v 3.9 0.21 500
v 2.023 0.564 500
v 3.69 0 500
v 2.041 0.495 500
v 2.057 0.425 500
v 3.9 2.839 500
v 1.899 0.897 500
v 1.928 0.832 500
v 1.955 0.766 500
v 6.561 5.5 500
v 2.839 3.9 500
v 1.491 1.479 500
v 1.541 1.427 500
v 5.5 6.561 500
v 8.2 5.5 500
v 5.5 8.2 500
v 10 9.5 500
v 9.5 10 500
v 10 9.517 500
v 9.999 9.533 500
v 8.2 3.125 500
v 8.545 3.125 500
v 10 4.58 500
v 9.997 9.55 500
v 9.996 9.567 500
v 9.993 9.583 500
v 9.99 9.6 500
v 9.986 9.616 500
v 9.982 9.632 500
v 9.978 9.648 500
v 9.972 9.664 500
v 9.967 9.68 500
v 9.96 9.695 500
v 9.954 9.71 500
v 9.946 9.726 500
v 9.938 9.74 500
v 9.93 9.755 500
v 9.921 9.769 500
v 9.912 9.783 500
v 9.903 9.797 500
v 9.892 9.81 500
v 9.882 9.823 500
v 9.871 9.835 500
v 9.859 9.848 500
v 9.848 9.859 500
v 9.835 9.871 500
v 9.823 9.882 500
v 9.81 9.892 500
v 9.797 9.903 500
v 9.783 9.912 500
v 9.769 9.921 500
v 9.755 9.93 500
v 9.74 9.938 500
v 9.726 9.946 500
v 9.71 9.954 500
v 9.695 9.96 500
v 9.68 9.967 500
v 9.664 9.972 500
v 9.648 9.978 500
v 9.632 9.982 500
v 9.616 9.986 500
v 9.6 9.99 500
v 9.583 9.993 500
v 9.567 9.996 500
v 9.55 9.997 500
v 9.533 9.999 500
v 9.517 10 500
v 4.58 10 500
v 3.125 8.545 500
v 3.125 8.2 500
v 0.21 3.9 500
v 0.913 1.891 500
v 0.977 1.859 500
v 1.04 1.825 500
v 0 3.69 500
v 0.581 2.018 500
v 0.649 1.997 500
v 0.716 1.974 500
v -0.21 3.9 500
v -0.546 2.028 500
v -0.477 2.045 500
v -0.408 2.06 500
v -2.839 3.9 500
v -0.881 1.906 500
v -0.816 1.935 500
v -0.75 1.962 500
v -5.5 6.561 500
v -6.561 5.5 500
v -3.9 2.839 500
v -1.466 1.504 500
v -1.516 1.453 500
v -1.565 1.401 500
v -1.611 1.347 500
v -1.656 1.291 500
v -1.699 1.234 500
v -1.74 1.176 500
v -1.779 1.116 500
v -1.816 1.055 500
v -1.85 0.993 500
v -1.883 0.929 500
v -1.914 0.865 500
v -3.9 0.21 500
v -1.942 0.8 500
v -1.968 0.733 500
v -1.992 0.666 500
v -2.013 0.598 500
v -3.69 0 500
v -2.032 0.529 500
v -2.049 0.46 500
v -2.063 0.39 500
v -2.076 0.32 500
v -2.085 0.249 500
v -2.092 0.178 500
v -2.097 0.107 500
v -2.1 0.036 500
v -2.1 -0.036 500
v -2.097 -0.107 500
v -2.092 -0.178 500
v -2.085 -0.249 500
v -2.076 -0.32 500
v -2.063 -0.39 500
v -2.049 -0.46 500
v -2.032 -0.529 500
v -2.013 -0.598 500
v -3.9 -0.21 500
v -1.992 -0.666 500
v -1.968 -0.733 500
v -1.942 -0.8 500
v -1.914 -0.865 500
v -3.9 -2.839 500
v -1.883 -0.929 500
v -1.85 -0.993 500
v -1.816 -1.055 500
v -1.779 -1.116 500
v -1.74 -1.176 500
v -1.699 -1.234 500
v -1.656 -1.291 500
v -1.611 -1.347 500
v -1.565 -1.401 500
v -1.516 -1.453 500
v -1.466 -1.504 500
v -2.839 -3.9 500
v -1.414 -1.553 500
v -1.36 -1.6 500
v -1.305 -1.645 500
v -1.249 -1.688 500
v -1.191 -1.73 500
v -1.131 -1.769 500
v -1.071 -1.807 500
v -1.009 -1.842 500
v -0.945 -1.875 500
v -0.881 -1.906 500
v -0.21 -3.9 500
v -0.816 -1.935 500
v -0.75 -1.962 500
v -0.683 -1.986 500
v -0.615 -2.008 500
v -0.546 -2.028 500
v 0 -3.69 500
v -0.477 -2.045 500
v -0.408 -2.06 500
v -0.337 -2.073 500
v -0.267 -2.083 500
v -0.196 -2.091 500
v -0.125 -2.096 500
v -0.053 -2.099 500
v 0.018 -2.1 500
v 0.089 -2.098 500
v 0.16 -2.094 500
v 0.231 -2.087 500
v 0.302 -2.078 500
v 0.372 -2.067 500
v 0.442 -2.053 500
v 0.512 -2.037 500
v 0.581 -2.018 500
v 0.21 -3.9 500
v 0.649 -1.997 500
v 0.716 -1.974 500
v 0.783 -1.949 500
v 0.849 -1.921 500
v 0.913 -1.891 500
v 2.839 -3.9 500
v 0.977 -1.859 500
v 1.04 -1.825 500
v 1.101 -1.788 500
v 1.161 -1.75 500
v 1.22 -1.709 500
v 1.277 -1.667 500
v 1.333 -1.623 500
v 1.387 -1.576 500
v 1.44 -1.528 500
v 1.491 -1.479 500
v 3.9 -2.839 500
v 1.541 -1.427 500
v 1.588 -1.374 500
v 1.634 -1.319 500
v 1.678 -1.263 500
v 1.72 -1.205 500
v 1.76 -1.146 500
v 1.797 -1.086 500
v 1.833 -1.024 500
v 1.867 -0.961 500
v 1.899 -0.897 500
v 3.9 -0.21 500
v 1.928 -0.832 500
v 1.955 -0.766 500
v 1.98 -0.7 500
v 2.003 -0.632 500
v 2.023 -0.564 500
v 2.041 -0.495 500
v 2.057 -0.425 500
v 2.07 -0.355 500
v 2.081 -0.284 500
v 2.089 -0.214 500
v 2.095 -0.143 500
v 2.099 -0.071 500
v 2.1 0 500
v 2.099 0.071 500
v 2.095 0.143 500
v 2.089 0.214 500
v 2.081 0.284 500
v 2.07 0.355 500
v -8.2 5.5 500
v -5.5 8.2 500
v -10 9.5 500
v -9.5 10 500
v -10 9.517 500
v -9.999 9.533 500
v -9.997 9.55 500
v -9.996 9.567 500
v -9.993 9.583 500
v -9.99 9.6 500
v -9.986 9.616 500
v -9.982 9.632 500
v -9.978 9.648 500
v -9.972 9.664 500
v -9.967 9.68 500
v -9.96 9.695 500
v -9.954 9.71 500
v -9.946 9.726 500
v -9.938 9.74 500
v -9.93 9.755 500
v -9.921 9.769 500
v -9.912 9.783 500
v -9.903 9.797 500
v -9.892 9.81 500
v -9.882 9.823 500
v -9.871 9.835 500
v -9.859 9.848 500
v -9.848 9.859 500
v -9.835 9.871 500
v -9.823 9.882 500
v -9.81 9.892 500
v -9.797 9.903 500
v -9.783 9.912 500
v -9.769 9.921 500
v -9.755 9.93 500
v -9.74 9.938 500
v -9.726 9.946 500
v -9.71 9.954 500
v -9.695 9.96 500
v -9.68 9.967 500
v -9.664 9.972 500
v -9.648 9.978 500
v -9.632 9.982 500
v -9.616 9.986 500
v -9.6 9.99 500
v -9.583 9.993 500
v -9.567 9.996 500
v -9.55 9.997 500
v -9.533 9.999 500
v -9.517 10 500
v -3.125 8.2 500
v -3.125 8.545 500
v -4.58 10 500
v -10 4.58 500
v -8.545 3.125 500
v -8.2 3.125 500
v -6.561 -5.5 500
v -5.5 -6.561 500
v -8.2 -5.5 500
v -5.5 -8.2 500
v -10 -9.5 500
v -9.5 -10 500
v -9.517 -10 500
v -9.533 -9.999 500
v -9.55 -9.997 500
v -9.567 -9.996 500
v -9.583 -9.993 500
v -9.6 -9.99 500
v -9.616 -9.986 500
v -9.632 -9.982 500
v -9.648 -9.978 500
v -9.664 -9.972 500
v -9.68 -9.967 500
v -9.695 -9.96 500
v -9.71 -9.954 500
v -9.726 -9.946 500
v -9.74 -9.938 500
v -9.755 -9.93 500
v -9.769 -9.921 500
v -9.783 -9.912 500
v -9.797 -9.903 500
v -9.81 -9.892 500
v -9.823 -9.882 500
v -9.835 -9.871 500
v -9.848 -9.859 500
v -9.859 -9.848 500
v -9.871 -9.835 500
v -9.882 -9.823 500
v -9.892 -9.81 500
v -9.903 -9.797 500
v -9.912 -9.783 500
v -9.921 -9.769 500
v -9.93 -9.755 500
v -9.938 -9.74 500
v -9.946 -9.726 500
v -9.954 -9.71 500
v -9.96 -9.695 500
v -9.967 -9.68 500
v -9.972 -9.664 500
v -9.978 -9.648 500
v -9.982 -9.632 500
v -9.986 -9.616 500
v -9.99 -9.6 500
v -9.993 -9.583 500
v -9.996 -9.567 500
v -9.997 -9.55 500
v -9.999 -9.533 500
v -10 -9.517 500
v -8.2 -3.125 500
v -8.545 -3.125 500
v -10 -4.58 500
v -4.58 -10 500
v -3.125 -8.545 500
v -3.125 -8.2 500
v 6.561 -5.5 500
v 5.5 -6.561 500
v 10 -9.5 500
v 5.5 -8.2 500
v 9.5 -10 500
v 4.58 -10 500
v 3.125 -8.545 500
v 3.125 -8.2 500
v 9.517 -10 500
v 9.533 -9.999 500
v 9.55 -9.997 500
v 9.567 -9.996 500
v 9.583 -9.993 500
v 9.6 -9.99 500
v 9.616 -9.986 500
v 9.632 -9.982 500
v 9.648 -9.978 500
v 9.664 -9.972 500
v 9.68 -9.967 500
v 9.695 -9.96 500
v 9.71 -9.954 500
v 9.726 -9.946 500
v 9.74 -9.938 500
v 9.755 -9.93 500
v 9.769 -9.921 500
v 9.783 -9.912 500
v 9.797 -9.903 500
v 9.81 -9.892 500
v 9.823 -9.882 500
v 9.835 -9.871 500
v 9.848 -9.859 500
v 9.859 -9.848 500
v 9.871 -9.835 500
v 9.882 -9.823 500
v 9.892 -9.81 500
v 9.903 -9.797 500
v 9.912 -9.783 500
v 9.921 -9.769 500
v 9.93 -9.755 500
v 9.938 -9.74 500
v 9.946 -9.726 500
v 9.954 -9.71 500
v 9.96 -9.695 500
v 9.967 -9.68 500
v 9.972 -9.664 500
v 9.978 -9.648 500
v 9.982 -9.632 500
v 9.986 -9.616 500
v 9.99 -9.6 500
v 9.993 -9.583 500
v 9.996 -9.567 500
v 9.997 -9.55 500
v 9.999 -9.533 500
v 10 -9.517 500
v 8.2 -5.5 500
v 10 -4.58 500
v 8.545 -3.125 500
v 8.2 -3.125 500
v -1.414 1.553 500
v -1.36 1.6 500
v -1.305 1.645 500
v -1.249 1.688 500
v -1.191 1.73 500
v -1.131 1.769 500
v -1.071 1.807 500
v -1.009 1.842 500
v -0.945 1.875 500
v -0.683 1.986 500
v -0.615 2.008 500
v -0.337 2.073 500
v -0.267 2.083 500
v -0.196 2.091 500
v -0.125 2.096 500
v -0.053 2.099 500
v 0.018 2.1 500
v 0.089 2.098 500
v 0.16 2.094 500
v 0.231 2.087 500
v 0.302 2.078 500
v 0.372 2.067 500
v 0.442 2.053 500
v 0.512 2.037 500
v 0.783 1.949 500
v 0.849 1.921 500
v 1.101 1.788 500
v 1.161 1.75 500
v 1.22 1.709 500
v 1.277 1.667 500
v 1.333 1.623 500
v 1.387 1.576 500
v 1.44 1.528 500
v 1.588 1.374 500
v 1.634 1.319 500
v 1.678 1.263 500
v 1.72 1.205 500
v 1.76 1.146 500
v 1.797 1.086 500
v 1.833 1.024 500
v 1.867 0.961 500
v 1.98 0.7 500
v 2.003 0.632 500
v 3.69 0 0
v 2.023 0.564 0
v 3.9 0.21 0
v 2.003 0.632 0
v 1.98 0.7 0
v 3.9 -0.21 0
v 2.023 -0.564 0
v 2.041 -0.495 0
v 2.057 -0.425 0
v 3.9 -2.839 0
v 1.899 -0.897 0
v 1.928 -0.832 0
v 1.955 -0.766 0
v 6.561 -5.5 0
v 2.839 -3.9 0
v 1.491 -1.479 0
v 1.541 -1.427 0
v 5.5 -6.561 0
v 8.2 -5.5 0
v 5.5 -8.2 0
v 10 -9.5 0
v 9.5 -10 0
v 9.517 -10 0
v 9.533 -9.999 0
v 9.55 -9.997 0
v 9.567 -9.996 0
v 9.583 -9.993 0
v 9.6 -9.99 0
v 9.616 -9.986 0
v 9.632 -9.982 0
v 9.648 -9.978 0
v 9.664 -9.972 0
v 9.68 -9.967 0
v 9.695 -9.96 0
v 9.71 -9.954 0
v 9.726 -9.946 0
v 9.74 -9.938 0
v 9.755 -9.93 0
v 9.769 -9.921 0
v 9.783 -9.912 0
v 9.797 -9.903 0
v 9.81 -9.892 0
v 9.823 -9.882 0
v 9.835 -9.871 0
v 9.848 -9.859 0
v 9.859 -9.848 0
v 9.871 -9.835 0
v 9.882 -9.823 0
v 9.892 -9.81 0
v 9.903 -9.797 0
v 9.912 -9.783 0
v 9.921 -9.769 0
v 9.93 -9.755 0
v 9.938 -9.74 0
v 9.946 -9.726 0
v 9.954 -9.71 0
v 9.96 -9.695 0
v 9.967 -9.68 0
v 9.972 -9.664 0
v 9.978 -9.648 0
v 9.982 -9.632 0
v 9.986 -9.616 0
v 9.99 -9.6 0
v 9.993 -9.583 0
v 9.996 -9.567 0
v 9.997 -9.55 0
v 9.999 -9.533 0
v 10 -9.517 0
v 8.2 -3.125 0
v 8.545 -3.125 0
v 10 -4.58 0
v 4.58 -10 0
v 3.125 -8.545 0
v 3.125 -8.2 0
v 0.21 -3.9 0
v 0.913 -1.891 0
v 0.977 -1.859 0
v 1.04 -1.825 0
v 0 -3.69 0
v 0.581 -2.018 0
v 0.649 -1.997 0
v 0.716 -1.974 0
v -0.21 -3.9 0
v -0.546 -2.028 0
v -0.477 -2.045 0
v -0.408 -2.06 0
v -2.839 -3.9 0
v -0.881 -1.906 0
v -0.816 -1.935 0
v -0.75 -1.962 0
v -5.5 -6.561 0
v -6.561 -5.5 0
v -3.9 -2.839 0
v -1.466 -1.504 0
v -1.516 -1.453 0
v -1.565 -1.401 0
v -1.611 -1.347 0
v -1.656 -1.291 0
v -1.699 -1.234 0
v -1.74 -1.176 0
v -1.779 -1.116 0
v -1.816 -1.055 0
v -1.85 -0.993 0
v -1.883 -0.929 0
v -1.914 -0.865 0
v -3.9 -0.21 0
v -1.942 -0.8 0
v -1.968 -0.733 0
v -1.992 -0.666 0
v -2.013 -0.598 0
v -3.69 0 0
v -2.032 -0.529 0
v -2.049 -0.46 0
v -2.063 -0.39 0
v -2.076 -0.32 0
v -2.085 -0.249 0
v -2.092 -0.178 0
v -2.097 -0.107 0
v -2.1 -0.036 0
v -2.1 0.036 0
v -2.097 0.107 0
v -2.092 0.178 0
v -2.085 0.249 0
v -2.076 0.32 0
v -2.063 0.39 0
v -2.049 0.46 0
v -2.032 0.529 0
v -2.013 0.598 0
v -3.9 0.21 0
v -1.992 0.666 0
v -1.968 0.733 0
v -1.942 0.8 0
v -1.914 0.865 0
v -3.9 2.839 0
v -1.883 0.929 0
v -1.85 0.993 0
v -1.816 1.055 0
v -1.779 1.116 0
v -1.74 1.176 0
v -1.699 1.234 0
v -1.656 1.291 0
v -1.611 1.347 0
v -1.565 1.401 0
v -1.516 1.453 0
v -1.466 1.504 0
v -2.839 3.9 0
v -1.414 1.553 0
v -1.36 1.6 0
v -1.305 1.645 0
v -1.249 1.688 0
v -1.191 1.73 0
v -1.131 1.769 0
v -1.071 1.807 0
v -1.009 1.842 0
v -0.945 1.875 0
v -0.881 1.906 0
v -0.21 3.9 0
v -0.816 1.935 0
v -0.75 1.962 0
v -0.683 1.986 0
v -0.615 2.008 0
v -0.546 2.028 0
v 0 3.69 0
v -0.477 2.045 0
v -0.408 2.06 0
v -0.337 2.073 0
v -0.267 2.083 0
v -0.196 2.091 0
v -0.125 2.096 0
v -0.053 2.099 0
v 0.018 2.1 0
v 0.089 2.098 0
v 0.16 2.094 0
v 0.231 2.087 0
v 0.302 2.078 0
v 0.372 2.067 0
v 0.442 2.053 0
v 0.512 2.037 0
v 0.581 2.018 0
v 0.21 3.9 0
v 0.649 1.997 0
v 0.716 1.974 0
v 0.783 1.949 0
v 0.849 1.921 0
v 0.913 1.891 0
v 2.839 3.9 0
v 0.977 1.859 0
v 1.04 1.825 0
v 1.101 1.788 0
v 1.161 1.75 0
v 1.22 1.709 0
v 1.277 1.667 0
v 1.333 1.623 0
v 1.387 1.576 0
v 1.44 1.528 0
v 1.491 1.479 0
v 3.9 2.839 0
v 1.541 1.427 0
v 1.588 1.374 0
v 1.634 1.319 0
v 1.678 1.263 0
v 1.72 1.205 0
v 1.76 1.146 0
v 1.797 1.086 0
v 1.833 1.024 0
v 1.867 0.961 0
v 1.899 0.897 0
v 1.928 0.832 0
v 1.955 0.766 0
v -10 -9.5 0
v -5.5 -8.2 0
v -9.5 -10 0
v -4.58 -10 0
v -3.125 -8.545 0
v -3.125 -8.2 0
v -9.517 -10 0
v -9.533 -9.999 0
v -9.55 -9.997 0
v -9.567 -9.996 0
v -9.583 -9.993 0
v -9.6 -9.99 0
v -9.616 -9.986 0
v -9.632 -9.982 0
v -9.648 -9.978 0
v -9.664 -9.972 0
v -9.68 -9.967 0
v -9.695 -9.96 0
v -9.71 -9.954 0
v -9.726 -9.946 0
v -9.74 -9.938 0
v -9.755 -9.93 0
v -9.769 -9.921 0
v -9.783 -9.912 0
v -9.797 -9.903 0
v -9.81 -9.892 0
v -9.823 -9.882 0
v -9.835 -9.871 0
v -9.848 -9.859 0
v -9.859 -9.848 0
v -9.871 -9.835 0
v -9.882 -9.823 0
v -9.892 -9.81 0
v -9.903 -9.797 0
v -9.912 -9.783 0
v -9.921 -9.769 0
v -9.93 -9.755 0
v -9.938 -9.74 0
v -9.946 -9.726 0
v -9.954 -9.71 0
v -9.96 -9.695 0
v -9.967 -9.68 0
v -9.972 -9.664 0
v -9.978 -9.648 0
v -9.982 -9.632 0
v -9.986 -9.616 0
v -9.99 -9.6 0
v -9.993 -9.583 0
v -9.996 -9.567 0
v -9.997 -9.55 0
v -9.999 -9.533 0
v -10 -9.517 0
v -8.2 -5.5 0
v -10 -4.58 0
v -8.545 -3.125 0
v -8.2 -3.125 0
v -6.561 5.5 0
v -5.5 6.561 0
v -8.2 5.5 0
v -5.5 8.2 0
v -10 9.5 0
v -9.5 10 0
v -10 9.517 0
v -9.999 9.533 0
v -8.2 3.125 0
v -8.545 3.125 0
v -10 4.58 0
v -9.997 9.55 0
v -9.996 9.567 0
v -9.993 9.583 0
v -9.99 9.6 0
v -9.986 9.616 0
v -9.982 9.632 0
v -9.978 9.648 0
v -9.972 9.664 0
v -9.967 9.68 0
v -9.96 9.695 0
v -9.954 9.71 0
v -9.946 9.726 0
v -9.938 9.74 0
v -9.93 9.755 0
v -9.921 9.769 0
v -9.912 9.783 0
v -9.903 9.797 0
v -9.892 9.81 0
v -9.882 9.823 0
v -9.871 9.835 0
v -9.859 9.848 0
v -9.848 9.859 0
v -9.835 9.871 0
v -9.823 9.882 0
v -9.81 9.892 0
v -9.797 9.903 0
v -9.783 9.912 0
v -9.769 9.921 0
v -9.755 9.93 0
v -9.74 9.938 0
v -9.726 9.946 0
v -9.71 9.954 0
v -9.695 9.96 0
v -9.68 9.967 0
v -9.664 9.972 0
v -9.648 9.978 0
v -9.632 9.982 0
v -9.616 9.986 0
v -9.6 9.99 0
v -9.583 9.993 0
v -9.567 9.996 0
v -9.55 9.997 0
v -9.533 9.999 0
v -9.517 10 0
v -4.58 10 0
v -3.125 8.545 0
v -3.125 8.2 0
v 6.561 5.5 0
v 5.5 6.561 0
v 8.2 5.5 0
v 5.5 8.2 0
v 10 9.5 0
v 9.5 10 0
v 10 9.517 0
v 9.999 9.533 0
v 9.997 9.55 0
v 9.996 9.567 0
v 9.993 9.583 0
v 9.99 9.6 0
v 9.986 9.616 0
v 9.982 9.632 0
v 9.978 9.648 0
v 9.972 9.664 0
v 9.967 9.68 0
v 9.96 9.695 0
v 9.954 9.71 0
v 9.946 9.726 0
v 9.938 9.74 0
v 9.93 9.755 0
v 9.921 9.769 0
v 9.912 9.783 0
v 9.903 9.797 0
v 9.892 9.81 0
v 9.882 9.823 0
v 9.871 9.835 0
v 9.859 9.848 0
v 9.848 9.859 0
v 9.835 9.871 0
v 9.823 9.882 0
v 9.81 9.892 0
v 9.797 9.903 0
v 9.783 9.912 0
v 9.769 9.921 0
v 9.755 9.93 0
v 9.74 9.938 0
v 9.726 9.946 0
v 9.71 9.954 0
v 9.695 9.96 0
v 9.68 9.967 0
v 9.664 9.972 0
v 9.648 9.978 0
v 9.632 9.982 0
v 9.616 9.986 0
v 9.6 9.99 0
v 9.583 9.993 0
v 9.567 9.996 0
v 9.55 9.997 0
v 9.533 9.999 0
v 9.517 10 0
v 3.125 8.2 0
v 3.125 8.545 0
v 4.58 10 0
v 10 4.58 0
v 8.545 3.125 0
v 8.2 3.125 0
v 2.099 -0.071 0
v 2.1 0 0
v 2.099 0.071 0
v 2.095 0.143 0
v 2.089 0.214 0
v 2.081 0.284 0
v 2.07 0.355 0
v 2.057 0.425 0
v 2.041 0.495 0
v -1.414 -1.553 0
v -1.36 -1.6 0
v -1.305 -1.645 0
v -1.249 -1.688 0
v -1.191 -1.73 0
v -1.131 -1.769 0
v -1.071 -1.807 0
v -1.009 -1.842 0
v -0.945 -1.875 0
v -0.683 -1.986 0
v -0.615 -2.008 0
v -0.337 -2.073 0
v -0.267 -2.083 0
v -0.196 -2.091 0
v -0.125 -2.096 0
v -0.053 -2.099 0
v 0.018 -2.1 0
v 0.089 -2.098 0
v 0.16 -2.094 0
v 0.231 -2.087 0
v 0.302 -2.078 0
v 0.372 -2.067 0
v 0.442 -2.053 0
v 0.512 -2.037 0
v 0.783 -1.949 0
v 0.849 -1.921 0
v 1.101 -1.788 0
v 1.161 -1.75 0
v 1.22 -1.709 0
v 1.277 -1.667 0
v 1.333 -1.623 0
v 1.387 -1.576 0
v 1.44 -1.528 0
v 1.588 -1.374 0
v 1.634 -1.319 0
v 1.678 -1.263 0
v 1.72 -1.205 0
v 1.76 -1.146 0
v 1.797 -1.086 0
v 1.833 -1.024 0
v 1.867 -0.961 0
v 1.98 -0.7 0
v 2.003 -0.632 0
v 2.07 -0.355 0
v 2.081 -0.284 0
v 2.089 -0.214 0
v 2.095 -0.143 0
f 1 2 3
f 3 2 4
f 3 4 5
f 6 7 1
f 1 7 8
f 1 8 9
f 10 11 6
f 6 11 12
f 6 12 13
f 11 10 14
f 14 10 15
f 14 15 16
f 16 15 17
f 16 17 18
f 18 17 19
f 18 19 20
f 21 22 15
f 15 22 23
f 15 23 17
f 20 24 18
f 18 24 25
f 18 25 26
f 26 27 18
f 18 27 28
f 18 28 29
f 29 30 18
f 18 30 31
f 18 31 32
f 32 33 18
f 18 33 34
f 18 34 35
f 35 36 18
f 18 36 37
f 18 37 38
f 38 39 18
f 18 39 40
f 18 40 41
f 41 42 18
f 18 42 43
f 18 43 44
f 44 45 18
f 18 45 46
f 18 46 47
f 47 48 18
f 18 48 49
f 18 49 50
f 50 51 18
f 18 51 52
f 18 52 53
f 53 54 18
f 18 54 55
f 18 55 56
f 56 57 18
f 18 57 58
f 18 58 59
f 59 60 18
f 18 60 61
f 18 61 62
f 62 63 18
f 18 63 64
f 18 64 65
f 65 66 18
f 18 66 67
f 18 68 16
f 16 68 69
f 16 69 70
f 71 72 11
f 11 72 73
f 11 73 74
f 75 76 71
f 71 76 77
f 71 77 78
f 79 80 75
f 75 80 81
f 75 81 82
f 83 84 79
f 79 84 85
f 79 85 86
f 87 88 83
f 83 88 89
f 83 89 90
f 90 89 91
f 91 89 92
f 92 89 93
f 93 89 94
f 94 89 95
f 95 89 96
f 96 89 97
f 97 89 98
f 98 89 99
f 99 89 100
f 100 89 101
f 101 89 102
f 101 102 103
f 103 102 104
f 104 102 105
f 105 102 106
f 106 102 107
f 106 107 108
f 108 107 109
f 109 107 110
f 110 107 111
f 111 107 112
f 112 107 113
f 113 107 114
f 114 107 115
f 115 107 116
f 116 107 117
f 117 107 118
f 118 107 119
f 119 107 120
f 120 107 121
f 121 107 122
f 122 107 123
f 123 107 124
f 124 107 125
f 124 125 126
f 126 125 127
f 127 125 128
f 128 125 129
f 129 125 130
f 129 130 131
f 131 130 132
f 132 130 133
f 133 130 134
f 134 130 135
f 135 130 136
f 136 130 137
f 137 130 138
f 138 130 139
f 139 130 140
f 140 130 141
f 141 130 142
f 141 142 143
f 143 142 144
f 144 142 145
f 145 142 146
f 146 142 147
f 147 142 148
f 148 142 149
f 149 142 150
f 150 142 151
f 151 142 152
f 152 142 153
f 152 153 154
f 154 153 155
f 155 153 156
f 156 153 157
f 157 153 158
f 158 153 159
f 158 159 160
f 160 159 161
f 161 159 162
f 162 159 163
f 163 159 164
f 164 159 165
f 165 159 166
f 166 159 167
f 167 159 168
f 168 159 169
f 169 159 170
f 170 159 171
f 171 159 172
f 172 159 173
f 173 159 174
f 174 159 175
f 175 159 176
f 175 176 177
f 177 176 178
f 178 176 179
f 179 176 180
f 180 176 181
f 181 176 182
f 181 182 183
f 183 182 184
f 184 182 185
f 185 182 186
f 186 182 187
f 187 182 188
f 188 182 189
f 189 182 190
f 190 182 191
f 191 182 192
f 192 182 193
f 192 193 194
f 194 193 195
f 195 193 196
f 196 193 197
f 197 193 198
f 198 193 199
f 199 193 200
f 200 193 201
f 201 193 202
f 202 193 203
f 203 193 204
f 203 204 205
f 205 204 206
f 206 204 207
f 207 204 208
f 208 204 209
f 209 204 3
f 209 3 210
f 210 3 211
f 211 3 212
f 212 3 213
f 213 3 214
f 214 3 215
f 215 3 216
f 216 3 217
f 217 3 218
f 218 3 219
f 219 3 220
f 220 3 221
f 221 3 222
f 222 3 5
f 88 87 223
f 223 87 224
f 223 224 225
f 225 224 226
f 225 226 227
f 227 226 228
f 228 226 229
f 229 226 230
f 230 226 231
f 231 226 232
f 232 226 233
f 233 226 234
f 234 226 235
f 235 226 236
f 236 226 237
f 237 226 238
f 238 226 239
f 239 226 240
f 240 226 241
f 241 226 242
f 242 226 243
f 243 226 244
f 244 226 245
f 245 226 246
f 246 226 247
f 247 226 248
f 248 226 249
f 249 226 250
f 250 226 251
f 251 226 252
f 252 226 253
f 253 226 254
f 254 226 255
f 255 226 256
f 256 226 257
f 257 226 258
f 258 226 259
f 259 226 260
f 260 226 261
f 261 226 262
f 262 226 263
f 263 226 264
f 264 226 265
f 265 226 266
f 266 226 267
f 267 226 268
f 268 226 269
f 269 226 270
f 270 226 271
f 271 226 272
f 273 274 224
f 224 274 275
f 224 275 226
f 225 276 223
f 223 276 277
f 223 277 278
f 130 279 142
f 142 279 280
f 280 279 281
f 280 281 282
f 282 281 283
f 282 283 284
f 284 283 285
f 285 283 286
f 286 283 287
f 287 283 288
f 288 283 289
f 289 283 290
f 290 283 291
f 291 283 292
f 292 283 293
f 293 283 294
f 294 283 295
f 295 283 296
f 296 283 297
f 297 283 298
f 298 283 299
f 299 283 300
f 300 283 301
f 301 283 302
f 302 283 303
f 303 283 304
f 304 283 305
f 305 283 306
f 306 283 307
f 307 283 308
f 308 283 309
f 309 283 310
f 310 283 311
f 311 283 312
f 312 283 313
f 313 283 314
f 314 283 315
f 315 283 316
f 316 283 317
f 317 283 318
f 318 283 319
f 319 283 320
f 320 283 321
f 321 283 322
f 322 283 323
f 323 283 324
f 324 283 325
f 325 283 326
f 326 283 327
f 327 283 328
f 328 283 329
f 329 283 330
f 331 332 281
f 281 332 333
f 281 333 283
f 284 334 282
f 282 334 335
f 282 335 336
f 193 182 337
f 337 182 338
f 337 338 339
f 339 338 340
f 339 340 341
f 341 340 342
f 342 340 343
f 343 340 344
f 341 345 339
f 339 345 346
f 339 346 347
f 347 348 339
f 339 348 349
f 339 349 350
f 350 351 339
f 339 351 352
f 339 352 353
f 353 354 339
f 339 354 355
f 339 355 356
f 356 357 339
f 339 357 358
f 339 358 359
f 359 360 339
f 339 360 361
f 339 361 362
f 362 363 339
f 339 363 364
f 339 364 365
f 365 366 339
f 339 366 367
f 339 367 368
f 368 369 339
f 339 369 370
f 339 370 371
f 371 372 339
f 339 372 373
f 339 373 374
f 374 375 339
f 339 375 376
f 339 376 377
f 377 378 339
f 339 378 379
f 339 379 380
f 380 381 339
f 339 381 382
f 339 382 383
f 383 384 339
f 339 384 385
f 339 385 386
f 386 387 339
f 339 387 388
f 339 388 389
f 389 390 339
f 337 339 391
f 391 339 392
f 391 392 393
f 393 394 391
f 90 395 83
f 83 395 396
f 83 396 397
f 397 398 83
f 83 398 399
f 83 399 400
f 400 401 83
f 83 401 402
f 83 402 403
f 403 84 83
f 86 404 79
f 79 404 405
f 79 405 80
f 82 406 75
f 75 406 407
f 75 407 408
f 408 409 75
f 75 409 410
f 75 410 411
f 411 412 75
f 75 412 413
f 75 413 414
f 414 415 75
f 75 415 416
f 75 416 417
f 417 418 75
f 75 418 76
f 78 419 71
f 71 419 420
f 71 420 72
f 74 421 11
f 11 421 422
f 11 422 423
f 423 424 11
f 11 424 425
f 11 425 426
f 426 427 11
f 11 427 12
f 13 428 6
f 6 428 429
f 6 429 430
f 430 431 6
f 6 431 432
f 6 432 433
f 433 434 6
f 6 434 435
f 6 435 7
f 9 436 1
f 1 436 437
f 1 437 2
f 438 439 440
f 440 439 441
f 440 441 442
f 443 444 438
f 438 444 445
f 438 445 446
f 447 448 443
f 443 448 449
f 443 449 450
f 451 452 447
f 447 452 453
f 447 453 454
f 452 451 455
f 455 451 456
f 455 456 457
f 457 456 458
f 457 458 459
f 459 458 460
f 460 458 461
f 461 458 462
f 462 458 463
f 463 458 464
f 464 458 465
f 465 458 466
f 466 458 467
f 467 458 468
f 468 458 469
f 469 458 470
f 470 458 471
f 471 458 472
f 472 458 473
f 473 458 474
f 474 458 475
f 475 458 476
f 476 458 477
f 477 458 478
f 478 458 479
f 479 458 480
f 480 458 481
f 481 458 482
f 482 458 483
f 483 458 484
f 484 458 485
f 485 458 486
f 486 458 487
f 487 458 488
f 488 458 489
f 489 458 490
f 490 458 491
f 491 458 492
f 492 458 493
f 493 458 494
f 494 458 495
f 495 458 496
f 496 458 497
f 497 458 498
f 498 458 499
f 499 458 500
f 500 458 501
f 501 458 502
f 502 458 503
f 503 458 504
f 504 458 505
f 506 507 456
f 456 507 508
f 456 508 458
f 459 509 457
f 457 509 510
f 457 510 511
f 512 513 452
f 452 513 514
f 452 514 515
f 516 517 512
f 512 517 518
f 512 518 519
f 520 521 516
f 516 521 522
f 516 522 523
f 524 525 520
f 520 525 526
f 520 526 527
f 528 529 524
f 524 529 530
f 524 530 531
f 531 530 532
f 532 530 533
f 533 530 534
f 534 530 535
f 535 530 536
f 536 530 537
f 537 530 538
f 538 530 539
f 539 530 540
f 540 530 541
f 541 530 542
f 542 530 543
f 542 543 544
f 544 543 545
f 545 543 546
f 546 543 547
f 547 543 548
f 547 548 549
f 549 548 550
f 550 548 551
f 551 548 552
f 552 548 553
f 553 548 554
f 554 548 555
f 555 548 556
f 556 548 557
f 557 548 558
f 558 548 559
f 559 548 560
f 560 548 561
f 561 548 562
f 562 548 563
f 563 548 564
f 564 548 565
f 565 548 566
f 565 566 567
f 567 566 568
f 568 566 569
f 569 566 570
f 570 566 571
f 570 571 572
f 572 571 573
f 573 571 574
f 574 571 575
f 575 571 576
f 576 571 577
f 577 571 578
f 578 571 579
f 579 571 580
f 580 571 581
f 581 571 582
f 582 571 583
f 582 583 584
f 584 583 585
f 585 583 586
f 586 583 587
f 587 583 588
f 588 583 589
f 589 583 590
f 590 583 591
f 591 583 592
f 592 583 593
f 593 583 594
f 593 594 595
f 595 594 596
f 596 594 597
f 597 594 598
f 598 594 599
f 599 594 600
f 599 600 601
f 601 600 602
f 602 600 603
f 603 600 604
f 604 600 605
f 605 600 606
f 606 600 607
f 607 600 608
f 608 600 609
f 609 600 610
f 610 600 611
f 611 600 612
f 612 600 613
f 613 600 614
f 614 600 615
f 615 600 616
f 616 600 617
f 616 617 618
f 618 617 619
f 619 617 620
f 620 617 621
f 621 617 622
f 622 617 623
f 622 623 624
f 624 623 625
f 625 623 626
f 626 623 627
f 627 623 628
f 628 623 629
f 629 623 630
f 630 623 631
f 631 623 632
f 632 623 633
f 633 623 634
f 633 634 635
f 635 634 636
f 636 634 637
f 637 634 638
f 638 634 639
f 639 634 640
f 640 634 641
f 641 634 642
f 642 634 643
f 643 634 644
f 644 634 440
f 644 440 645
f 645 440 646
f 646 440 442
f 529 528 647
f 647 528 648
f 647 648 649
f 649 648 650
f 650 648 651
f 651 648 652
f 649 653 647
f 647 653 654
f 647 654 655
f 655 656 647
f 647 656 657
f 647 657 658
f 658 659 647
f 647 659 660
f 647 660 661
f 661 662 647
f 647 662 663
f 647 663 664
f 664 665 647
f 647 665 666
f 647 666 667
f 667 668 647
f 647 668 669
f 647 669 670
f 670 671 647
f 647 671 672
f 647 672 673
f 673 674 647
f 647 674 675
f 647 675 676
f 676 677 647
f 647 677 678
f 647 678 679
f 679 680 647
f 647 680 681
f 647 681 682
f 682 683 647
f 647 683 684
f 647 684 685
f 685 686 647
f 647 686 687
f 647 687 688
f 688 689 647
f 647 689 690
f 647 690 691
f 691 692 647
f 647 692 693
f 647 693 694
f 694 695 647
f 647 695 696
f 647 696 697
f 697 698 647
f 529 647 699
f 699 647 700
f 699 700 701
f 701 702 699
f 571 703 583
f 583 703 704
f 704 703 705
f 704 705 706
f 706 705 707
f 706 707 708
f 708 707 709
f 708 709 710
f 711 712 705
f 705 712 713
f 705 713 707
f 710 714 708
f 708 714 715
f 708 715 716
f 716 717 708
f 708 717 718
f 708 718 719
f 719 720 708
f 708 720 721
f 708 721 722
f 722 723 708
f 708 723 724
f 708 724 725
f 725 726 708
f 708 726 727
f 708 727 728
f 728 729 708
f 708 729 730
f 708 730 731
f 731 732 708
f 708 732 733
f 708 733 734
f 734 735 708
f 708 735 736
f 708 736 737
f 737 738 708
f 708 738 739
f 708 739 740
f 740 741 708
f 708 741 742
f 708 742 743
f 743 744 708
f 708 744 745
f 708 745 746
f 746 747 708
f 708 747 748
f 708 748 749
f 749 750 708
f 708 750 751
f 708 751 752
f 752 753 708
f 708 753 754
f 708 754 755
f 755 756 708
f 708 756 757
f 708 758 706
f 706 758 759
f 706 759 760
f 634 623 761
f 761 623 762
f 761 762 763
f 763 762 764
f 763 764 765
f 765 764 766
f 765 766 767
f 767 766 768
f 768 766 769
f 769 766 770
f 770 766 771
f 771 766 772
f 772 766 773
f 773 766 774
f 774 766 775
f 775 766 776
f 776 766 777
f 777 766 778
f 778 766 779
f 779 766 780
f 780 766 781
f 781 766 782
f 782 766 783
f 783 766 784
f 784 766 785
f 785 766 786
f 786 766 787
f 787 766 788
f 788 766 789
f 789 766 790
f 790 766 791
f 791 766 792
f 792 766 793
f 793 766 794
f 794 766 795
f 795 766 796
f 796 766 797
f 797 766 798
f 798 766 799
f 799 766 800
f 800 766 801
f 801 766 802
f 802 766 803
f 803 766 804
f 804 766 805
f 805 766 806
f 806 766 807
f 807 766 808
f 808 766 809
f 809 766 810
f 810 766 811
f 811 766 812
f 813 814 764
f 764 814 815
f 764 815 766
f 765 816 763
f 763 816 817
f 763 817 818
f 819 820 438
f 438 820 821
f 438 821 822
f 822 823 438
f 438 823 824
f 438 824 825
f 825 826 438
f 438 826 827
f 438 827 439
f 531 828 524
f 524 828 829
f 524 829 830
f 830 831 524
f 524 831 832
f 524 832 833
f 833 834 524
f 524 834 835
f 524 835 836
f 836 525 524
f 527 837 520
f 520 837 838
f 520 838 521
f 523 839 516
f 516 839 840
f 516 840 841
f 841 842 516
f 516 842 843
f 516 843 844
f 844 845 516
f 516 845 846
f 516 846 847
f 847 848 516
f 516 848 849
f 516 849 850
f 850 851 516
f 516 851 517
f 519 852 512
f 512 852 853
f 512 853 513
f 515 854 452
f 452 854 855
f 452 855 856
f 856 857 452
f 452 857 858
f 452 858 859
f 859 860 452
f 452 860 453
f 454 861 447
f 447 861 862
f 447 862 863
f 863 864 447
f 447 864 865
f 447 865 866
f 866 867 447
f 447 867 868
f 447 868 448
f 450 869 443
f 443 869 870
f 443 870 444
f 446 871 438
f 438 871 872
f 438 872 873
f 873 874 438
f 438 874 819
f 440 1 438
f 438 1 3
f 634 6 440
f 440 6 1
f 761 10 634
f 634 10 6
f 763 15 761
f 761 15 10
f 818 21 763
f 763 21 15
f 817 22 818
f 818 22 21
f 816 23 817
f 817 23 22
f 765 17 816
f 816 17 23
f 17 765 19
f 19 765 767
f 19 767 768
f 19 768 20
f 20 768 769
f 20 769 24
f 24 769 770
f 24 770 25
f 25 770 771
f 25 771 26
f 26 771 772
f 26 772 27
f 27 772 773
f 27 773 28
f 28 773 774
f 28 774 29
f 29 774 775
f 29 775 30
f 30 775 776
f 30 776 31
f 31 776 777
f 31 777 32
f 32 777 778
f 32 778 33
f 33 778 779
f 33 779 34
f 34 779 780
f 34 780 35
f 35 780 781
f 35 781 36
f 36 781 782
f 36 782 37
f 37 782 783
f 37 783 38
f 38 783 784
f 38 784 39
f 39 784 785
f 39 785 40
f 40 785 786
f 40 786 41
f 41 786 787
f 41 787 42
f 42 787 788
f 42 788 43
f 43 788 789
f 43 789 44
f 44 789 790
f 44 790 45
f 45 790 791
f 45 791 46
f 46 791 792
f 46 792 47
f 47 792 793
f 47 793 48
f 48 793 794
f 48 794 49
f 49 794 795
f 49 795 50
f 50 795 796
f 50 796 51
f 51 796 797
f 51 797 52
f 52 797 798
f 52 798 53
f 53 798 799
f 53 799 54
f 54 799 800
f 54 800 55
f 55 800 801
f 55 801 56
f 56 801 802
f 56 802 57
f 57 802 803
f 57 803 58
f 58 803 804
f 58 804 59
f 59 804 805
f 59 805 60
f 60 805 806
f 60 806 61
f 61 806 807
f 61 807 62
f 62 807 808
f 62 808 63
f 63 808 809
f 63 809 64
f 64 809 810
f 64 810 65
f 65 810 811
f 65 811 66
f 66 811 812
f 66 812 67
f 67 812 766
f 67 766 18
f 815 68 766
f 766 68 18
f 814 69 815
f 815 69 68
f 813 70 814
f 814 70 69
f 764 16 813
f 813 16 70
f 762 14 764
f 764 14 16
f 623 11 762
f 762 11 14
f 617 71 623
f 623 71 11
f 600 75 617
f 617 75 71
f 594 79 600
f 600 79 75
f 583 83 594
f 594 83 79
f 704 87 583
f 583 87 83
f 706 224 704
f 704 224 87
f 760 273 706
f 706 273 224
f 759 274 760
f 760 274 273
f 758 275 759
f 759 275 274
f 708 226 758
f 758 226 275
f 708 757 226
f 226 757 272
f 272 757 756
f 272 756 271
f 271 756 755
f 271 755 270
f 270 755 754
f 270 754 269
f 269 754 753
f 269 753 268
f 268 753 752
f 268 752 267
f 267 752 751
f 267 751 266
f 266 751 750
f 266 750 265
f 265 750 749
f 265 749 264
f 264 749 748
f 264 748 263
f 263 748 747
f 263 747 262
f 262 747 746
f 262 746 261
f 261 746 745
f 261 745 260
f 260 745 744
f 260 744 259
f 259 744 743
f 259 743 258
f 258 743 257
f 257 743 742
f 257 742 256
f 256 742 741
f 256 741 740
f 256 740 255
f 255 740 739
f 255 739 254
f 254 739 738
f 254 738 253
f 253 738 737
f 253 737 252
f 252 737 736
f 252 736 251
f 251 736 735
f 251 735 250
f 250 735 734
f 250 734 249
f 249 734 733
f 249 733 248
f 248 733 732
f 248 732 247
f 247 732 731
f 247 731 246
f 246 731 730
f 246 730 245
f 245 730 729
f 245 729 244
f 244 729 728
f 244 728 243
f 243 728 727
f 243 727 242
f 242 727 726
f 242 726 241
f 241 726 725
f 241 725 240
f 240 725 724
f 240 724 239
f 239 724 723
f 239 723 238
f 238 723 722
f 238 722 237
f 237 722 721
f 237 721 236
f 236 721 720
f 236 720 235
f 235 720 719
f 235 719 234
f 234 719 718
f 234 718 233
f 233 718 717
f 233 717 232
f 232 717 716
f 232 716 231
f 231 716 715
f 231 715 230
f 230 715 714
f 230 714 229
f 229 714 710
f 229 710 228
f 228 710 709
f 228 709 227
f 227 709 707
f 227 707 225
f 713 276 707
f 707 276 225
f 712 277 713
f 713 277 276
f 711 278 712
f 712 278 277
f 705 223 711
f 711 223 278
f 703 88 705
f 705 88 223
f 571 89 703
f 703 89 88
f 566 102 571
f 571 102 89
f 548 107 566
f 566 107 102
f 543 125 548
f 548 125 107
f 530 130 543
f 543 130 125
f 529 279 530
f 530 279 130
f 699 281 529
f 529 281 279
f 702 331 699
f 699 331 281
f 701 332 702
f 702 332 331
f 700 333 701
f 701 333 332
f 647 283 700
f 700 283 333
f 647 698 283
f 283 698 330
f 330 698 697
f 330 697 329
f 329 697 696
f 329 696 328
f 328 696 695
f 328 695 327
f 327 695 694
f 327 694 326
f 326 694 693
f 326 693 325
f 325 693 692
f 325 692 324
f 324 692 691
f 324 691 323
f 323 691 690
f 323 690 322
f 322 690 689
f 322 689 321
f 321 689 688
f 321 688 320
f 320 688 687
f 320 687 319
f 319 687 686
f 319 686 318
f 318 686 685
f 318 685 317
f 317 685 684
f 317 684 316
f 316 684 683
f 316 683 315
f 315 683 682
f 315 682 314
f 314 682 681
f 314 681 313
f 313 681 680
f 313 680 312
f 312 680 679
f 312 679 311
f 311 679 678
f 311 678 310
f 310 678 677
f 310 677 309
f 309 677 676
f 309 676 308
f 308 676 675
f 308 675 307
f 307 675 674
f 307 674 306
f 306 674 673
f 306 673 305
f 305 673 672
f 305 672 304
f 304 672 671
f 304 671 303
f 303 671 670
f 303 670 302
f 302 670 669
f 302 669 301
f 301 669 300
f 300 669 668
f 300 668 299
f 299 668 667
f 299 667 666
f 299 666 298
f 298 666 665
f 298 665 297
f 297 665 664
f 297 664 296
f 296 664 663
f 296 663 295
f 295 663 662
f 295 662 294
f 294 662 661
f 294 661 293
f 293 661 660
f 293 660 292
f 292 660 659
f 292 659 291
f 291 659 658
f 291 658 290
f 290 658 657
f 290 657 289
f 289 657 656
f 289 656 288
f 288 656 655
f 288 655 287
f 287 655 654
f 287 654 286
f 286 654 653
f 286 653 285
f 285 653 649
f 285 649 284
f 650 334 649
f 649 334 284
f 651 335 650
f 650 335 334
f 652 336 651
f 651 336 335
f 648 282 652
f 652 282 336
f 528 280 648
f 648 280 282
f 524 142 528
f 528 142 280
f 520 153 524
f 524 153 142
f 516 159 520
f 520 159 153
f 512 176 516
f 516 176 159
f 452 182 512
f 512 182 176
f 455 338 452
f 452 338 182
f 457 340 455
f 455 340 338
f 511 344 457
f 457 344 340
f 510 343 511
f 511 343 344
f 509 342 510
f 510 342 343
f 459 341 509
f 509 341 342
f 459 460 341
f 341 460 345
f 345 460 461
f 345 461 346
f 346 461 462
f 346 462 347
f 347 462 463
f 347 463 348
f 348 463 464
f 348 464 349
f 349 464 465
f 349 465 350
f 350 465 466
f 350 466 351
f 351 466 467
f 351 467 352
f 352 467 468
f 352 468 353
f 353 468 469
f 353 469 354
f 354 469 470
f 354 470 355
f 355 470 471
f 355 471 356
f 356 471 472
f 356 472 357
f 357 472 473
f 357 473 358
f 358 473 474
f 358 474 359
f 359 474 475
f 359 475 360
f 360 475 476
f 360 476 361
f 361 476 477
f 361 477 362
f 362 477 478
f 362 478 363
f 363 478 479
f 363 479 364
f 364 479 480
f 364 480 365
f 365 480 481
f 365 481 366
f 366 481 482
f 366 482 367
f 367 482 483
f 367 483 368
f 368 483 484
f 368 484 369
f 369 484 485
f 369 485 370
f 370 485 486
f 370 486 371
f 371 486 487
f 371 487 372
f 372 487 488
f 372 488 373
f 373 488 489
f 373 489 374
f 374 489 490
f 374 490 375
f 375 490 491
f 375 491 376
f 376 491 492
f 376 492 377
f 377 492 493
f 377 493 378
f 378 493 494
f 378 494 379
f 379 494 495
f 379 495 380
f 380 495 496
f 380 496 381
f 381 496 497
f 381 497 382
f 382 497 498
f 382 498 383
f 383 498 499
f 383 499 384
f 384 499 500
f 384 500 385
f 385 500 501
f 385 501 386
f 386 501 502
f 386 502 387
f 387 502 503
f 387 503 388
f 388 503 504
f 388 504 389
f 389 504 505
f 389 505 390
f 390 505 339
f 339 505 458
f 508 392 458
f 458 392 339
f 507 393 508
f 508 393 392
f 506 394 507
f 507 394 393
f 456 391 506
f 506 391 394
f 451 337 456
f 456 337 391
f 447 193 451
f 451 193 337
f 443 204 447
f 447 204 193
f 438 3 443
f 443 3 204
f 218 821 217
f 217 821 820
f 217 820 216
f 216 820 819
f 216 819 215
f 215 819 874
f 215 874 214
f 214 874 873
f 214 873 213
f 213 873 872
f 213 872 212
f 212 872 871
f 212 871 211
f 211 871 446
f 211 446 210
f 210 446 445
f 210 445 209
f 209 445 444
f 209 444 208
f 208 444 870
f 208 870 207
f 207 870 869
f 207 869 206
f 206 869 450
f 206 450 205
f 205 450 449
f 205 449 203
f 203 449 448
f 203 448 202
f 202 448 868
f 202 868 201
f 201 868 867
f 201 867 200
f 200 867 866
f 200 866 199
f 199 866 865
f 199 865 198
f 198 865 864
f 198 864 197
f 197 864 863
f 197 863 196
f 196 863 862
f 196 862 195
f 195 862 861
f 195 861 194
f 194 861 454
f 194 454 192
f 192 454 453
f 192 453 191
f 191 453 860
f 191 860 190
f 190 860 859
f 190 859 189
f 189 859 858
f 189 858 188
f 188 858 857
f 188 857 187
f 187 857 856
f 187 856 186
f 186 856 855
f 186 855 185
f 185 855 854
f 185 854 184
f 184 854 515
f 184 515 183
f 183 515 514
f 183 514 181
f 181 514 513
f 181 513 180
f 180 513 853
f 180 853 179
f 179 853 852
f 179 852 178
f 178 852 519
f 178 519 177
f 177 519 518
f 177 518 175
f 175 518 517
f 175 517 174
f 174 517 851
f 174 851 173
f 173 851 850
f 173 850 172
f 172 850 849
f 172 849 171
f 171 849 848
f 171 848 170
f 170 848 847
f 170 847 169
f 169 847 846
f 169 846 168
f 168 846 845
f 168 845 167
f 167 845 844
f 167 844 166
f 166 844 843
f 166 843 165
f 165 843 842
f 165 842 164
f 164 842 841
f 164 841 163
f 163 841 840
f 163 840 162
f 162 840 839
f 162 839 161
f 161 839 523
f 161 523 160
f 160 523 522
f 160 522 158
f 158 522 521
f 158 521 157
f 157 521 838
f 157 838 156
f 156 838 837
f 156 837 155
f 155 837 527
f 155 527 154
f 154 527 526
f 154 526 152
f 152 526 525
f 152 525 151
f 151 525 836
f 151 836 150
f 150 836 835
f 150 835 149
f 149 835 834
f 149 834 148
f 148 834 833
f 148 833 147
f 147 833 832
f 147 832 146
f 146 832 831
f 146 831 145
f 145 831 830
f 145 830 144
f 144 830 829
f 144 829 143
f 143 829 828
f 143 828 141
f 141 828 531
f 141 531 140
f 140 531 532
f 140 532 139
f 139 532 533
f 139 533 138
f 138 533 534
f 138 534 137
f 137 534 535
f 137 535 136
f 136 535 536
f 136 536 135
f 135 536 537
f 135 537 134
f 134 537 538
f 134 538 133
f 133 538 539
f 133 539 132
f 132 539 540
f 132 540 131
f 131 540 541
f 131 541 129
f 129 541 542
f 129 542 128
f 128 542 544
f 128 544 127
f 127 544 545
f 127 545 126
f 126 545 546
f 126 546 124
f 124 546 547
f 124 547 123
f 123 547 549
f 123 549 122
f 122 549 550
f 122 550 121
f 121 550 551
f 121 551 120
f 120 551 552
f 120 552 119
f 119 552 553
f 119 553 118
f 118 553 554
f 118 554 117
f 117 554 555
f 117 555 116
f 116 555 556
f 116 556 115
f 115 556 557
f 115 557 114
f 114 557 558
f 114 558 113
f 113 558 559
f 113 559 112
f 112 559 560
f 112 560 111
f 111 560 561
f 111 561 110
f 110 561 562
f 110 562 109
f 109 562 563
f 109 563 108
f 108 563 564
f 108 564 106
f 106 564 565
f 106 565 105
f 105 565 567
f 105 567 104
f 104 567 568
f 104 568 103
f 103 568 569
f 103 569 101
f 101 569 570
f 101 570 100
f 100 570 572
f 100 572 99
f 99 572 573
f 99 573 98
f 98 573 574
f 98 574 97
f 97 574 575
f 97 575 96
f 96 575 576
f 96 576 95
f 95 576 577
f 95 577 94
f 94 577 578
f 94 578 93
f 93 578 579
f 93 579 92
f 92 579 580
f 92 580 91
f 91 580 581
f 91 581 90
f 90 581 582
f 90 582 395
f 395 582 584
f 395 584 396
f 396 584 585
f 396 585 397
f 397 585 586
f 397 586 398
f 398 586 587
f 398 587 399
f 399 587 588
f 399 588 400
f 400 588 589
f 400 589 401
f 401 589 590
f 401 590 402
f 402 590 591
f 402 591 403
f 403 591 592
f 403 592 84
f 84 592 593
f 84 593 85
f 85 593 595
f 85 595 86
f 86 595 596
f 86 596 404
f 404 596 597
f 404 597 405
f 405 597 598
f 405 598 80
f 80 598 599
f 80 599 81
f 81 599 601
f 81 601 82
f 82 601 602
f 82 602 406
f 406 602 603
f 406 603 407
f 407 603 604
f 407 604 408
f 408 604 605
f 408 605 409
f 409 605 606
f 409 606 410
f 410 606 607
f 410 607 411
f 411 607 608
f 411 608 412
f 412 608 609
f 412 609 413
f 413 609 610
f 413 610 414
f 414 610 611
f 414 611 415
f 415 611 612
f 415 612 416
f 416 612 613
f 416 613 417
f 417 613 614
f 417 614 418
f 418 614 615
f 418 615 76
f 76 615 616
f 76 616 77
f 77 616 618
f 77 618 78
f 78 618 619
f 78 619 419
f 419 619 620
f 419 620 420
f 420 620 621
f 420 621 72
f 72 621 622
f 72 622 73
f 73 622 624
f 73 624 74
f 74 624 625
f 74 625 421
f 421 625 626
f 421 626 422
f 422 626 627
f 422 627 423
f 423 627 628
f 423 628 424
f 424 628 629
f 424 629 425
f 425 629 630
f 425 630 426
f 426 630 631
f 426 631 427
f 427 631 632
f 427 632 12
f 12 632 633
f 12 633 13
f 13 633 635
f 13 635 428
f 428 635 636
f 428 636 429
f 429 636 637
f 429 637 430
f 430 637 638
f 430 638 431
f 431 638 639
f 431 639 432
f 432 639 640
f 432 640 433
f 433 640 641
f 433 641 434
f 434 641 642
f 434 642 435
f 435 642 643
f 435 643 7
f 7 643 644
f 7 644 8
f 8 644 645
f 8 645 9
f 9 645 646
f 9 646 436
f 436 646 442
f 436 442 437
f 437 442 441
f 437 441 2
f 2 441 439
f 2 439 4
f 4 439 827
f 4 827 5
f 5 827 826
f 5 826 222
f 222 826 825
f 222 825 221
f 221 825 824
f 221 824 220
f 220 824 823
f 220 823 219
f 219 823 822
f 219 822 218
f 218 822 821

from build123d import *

# Parameters (mm, degrees)
SKETCH1_R           = 2.1
BOSS_EXTRUDE1_DEPTH = 500


with BuildPart() as part:
    # Sketch1 → Boss-Extrude1 (new body)
    with BuildSketch(Plane.XY):
        with BuildLine():
            Line((3.69, 0), (3.9, -0.21))
            Line((3.9, -0.21), (3.9, -2.839339828))
            Line((3.9, -2.839339828), (6.560660172, -5.5))
            Line((6.560660172, -5.5), (8.2, -5.5))
            Line((8.2, -5.5), (8.2, -3.125))
            Line((8.2, -3.125), (8.545, -3.125))
            Line((8.545, -3.125), (10, -4.58))
            Line((10, -4.58), (10, -9.5))
            ThreePointArc((10, -9.5), (9.853553391, -9.853553391), (9.5, -10))
            Line((9.5, -10), (4.58, -10))
            Line((4.58, -10), (3.125, -8.545))
            Line((3.125, -8.545), (3.125, -8.2))
            Line((3.125, -8.2), (5.5, -8.2))
            Line((5.5, -8.2), (5.5, -6.560660172))
            Line((5.5, -6.560660172), (2.839339828, -3.9))
            Line((2.839339828, -3.9), (0.21, -3.9))
            Line((0.21, -3.9), (0, -3.69))
            Line((0, -3.69), (-0.21, -3.9))
            Line((-0.21, -3.9), (-2.839339828, -3.9))
            Line((-2.839339828, -3.9), (-5.5, -6.560660172))
            Line((-5.5, -6.560660172), (-5.5, -8.2))
            Line((-5.5, -8.2), (-3.125, -8.2))
            Line((-3.125, -8.2), (-3.125, -8.545))
            Line((-3.125, -8.545), (-4.58, -10))
            Line((-4.58, -10), (-9.5, -10))
            ThreePointArc((-9.5, -10), (-9.853553391, -9.853553391), (-10, -9.5))
            Line((-10, -9.5), (-10, -4.58))
            Line((-10, -4.58), (-8.545, -3.125))
            Line((-8.545, -3.125), (-8.2, -3.125))
            Line((-8.2, -3.125), (-8.2, -5.5))
            Line((-8.2, -5.5), (-6.560660172, -5.5))
            Line((-6.560660172, -5.5), (-3.9, -2.839339828))
            Line((-3.9, -2.839339828), (-3.9, -0.21))
            Line((-3.9, -0.21), (-3.69, 0))
            Line((-3.69, 0), (-3.9, 0.21))
            Line((-3.9, 0.21), (-3.9, 2.839339828))
            Line((-3.9, 2.839339828), (-6.560660172, 5.5))
            Line((-6.560660172, 5.5), (-8.2, 5.5))
            Line((-8.2, 5.5), (-8.2, 3.125))
            Line((-8.2, 3.125), (-8.545, 3.125))
            Line((-8.545, 3.125), (-10, 4.58))
            Line((-10, 4.58), (-10, 9.5))
            ThreePointArc((-10, 9.5), (-9.853553391, 9.853553391), (-9.5, 10))
            Line((-9.5, 10), (-4.58, 10))
            Line((-4.58, 10), (-3.125, 8.545))
            Line((-3.125, 8.545), (-3.125, 8.2))
            Line((-3.125, 8.2), (-5.5, 8.2))
            Line((-5.5, 8.2), (-5.5, 6.560660172))
            Line((-5.5, 6.560660172), (-2.839339828, 3.9))
            Line((-2.839339828, 3.9), (-0.21, 3.9))
            Line((-0.21, 3.9), (0, 3.69))
            Line((0, 3.69), (0.21, 3.9))
            Line((0.21, 3.9), (2.839339828, 3.9))
            Line((2.839339828, 3.9), (5.5, 6.560660172))
            Line((5.5, 6.560660172), (5.5, 8.2))
            Line((5.5, 8.2), (3.125, 8.2))
            Line((3.125, 8.2), (3.125, 8.545))
            Line((3.125, 8.545), (4.58, 10))
            Line((4.58, 10), (9.5, 10))
            ThreePointArc((9.5, 10), (9.853553391, 9.853553391), (10, 9.5))
            Line((10, 9.5), (10, 4.58))
            Line((10, 4.58), (8.545, 3.125))
            Line((8.545, 3.125), (8.2, 3.125))
            Line((8.2, 3.125), (8.2, 5.5))
            Line((8.2, 5.5), (6.560660172, 5.5))
            Line((6.560660172, 5.5), (3.9, 2.839339828))
            Line((3.9, 2.839339828), (3.9, 0.21))
            Line((3.9, 0.21), (3.69, 0))
        make_face()
        Circle(SKETCH1_R, mode=Mode.SUBTRACT)
    extrude(amount=BOSS_EXTRUDE1_DEPTH)


solid = part.part
